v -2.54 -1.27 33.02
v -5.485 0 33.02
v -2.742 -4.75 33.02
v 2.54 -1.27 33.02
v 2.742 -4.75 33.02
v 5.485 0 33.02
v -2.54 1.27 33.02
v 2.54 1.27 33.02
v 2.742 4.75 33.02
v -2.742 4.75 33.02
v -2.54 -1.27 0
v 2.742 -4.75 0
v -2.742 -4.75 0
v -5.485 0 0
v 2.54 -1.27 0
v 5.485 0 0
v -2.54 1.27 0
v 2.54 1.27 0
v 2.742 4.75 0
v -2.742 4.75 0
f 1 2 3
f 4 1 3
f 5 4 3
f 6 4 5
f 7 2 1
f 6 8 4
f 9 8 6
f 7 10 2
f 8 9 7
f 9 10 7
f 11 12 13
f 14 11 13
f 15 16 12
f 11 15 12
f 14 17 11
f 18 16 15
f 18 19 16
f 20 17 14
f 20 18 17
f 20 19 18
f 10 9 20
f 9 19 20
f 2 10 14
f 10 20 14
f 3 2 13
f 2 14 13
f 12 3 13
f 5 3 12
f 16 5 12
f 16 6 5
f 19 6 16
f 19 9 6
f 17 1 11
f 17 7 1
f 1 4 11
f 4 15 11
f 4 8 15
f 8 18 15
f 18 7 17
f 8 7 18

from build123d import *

# Parameters (mm, degrees)
SKETCH1_W           = 5.08
SKETCH1_H           = 2.54
BOSS_EXTRUDE1_DEPTH = 33.02


with BuildPart() as part:
    # Sketch1 → Boss-Extrude1 (new body)
    with BuildSketch(Plane.XY):
        Polygon((-2.742413779, 4.75), (-5.484827557, 0), (-2.742413779, -4.75), (2.742413779, -4.75), (5.484827557, 0), (2.742413779, 4.75), align=None)
        Rectangle(SKETCH1_W, SKETCH1_H, mode=Mode.SUBTRACT)
    extrude(amount=BOSS_EXTRUDE1_DEPTH)


solid = part.part
